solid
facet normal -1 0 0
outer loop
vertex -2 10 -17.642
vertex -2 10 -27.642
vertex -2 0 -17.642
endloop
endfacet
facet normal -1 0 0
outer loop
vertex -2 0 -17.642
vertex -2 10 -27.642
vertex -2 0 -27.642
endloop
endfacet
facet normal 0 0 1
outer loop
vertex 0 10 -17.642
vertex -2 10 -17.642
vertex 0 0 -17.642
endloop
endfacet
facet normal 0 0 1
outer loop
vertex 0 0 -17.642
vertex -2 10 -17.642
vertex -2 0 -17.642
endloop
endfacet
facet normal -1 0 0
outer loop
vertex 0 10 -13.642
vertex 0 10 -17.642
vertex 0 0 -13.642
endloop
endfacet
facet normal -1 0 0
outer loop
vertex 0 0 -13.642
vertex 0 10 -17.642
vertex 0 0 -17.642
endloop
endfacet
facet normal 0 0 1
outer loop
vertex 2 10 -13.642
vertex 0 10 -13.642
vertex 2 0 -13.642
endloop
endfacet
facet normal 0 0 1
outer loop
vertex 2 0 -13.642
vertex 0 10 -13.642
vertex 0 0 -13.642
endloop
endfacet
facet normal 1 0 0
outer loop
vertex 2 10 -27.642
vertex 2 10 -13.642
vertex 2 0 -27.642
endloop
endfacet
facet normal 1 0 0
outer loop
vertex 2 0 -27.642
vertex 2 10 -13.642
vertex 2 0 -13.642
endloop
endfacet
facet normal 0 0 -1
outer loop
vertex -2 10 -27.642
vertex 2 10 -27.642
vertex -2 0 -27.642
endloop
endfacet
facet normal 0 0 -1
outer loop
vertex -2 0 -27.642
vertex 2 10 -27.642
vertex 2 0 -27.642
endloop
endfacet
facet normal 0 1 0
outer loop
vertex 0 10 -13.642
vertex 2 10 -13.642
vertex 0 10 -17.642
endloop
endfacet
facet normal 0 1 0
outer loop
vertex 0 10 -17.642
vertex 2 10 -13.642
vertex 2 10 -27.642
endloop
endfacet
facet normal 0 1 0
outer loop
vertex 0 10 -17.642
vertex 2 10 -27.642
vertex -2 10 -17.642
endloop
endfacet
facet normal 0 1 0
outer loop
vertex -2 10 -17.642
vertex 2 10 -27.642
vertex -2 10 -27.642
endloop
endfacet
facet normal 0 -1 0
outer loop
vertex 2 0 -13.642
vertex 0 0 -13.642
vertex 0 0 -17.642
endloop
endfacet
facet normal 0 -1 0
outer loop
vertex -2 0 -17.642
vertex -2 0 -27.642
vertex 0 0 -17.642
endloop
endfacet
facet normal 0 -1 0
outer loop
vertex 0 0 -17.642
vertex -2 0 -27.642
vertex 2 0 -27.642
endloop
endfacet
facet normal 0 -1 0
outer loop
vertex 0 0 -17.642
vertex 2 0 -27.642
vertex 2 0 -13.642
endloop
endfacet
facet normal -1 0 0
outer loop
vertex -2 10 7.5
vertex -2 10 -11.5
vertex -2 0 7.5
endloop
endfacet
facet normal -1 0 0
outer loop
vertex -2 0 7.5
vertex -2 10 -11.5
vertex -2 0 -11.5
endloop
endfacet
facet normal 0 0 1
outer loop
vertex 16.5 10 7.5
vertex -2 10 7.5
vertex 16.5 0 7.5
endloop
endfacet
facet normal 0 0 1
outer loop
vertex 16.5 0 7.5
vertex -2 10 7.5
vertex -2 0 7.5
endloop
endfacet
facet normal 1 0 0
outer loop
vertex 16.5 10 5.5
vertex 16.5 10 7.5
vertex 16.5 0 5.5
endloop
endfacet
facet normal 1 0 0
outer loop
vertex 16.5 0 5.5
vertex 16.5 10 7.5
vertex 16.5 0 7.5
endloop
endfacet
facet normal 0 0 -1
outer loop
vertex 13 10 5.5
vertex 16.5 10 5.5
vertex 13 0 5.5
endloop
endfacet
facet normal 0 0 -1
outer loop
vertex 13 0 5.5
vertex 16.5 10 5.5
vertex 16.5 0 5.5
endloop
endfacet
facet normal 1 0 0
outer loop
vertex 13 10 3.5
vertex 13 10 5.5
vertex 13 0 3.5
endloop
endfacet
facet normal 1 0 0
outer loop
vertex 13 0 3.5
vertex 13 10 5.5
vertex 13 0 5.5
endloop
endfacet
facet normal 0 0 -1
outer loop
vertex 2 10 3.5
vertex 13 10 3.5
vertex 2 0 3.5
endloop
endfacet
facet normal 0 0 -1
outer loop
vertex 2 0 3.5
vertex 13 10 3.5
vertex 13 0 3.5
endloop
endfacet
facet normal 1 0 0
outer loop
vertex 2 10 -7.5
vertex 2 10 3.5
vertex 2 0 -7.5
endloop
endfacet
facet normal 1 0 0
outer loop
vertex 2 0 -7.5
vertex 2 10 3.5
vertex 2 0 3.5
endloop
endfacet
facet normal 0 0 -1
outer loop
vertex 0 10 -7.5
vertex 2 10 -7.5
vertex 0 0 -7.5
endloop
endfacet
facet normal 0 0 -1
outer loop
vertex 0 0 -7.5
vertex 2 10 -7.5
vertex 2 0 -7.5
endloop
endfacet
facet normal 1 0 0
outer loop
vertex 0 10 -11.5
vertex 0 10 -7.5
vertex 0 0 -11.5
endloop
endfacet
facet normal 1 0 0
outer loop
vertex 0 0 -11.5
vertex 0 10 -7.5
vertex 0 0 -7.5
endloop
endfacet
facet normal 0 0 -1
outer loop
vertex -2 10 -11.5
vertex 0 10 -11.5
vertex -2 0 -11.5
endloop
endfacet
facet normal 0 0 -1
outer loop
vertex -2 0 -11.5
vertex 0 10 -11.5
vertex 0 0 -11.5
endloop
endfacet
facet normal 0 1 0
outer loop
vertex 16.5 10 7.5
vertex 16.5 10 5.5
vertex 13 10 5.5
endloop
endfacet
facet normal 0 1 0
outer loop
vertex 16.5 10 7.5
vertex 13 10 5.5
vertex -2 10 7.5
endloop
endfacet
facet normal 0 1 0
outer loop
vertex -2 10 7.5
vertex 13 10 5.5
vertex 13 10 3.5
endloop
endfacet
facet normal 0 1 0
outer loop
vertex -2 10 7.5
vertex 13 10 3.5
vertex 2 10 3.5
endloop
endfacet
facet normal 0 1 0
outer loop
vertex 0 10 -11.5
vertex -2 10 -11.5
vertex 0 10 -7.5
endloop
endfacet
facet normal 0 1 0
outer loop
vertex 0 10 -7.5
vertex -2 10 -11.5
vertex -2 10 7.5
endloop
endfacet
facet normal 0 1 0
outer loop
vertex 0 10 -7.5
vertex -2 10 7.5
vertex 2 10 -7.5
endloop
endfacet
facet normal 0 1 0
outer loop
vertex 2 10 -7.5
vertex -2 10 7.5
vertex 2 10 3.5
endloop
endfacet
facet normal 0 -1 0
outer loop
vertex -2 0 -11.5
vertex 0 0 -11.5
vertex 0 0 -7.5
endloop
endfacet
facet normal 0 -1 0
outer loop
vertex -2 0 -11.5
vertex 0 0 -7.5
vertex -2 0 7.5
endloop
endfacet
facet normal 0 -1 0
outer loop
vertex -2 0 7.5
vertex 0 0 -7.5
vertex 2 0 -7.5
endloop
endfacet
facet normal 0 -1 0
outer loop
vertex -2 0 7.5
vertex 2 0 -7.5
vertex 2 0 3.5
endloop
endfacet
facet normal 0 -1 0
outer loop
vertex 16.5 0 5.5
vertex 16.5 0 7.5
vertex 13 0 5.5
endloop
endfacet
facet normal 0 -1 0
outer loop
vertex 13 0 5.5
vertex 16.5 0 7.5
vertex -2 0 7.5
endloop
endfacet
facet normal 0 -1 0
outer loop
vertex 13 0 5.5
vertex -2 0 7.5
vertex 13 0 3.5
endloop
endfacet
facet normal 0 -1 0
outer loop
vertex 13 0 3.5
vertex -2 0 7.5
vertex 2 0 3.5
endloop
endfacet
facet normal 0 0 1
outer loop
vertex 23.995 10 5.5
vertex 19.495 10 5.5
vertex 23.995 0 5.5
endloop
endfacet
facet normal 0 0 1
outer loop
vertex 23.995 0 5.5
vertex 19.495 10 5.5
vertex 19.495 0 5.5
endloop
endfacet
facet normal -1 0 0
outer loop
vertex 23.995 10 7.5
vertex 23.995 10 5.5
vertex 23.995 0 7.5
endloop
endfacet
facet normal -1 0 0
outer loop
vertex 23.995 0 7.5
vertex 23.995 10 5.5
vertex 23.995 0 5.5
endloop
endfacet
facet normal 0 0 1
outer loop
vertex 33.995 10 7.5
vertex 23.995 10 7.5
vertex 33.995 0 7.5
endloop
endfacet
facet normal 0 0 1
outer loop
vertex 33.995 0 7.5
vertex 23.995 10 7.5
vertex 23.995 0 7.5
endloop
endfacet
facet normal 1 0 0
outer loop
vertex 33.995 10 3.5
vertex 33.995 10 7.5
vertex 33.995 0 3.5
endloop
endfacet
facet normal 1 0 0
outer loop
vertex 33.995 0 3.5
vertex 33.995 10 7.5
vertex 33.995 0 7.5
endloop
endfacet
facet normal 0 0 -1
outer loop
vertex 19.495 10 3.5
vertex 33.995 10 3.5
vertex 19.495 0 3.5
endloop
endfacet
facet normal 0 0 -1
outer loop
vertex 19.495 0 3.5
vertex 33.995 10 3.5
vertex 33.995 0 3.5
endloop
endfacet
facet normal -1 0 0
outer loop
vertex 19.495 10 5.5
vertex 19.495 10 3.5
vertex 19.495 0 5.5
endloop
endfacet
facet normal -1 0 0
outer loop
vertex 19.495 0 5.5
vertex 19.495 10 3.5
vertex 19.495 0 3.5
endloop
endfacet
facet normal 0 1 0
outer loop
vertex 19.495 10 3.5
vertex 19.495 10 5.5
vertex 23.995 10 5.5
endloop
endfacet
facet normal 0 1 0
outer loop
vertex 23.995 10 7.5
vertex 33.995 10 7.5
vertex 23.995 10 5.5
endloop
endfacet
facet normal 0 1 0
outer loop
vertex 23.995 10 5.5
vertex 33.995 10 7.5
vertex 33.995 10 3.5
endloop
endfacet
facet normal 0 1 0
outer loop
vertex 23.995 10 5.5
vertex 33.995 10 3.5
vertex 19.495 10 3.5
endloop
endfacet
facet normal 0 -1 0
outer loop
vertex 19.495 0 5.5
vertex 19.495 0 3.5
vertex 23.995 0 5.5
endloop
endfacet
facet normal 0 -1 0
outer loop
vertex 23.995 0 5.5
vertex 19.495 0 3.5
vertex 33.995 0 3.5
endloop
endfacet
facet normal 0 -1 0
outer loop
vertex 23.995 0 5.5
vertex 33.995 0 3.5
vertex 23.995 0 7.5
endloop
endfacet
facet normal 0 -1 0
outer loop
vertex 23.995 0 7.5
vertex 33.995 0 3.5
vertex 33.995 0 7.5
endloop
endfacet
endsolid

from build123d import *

# Parameters (mm, degrees)
SKETCH1_W           = 2
SKETCH1_H           = 4
SKETCH1_W_2         = 4
SKETCH1_H_2         = 15
SKETCH1_W_3         = 4.5
SKETCH1_H_3         = 2
SKETCH1_W_4         = 3.5
BOSS_EXTRUDE1_DEPTH = 10


with BuildPart() as part:
    # Sketch1 → Boss-Extrude1 (new body)
    with BuildSketch(Plane(origin=(0, 0, 0), x_dir=(1, 0, 0), z_dir=(0, 1, 0))):
        Polygon((-2, 17.642450449), (0, 17.642450449), (2, 17.642450449), (2, 27.642450449), (-2, 27.642450449), align=None)
        with Locations((1, 15.642450449)):
            Rectangle(SKETCH1_W, SKETCH1_H)
        with Locations((-1, 9.5)):
            Rectangle(SKETCH1_W, SKETCH1_H)
        Rectangle(SKETCH1_W_2, SKETCH1_H_2)
        Polygon((2, -3.5), (2, -7.5), (13, -7.5), (13, -5.5), (13, -3.5), align=None)
        with Locations((21.744860515, -4.5)):
            Rectangle(SKETCH1_W_3, SKETCH1_H_3)
        with Locations((14.75, -6.5)):
            Rectangle(SKETCH1_W_4, SKETCH1_H_3)
        Polygon((23.994860515, -3.5), (23.994860515, -5.5), (23.994860515, -7.5), (33.994860515, -7.5), (33.994860515, -3.5), align=None)
    extrude(amount=BOSS_EXTRUDE1_DEPTH)


solid = part.part
